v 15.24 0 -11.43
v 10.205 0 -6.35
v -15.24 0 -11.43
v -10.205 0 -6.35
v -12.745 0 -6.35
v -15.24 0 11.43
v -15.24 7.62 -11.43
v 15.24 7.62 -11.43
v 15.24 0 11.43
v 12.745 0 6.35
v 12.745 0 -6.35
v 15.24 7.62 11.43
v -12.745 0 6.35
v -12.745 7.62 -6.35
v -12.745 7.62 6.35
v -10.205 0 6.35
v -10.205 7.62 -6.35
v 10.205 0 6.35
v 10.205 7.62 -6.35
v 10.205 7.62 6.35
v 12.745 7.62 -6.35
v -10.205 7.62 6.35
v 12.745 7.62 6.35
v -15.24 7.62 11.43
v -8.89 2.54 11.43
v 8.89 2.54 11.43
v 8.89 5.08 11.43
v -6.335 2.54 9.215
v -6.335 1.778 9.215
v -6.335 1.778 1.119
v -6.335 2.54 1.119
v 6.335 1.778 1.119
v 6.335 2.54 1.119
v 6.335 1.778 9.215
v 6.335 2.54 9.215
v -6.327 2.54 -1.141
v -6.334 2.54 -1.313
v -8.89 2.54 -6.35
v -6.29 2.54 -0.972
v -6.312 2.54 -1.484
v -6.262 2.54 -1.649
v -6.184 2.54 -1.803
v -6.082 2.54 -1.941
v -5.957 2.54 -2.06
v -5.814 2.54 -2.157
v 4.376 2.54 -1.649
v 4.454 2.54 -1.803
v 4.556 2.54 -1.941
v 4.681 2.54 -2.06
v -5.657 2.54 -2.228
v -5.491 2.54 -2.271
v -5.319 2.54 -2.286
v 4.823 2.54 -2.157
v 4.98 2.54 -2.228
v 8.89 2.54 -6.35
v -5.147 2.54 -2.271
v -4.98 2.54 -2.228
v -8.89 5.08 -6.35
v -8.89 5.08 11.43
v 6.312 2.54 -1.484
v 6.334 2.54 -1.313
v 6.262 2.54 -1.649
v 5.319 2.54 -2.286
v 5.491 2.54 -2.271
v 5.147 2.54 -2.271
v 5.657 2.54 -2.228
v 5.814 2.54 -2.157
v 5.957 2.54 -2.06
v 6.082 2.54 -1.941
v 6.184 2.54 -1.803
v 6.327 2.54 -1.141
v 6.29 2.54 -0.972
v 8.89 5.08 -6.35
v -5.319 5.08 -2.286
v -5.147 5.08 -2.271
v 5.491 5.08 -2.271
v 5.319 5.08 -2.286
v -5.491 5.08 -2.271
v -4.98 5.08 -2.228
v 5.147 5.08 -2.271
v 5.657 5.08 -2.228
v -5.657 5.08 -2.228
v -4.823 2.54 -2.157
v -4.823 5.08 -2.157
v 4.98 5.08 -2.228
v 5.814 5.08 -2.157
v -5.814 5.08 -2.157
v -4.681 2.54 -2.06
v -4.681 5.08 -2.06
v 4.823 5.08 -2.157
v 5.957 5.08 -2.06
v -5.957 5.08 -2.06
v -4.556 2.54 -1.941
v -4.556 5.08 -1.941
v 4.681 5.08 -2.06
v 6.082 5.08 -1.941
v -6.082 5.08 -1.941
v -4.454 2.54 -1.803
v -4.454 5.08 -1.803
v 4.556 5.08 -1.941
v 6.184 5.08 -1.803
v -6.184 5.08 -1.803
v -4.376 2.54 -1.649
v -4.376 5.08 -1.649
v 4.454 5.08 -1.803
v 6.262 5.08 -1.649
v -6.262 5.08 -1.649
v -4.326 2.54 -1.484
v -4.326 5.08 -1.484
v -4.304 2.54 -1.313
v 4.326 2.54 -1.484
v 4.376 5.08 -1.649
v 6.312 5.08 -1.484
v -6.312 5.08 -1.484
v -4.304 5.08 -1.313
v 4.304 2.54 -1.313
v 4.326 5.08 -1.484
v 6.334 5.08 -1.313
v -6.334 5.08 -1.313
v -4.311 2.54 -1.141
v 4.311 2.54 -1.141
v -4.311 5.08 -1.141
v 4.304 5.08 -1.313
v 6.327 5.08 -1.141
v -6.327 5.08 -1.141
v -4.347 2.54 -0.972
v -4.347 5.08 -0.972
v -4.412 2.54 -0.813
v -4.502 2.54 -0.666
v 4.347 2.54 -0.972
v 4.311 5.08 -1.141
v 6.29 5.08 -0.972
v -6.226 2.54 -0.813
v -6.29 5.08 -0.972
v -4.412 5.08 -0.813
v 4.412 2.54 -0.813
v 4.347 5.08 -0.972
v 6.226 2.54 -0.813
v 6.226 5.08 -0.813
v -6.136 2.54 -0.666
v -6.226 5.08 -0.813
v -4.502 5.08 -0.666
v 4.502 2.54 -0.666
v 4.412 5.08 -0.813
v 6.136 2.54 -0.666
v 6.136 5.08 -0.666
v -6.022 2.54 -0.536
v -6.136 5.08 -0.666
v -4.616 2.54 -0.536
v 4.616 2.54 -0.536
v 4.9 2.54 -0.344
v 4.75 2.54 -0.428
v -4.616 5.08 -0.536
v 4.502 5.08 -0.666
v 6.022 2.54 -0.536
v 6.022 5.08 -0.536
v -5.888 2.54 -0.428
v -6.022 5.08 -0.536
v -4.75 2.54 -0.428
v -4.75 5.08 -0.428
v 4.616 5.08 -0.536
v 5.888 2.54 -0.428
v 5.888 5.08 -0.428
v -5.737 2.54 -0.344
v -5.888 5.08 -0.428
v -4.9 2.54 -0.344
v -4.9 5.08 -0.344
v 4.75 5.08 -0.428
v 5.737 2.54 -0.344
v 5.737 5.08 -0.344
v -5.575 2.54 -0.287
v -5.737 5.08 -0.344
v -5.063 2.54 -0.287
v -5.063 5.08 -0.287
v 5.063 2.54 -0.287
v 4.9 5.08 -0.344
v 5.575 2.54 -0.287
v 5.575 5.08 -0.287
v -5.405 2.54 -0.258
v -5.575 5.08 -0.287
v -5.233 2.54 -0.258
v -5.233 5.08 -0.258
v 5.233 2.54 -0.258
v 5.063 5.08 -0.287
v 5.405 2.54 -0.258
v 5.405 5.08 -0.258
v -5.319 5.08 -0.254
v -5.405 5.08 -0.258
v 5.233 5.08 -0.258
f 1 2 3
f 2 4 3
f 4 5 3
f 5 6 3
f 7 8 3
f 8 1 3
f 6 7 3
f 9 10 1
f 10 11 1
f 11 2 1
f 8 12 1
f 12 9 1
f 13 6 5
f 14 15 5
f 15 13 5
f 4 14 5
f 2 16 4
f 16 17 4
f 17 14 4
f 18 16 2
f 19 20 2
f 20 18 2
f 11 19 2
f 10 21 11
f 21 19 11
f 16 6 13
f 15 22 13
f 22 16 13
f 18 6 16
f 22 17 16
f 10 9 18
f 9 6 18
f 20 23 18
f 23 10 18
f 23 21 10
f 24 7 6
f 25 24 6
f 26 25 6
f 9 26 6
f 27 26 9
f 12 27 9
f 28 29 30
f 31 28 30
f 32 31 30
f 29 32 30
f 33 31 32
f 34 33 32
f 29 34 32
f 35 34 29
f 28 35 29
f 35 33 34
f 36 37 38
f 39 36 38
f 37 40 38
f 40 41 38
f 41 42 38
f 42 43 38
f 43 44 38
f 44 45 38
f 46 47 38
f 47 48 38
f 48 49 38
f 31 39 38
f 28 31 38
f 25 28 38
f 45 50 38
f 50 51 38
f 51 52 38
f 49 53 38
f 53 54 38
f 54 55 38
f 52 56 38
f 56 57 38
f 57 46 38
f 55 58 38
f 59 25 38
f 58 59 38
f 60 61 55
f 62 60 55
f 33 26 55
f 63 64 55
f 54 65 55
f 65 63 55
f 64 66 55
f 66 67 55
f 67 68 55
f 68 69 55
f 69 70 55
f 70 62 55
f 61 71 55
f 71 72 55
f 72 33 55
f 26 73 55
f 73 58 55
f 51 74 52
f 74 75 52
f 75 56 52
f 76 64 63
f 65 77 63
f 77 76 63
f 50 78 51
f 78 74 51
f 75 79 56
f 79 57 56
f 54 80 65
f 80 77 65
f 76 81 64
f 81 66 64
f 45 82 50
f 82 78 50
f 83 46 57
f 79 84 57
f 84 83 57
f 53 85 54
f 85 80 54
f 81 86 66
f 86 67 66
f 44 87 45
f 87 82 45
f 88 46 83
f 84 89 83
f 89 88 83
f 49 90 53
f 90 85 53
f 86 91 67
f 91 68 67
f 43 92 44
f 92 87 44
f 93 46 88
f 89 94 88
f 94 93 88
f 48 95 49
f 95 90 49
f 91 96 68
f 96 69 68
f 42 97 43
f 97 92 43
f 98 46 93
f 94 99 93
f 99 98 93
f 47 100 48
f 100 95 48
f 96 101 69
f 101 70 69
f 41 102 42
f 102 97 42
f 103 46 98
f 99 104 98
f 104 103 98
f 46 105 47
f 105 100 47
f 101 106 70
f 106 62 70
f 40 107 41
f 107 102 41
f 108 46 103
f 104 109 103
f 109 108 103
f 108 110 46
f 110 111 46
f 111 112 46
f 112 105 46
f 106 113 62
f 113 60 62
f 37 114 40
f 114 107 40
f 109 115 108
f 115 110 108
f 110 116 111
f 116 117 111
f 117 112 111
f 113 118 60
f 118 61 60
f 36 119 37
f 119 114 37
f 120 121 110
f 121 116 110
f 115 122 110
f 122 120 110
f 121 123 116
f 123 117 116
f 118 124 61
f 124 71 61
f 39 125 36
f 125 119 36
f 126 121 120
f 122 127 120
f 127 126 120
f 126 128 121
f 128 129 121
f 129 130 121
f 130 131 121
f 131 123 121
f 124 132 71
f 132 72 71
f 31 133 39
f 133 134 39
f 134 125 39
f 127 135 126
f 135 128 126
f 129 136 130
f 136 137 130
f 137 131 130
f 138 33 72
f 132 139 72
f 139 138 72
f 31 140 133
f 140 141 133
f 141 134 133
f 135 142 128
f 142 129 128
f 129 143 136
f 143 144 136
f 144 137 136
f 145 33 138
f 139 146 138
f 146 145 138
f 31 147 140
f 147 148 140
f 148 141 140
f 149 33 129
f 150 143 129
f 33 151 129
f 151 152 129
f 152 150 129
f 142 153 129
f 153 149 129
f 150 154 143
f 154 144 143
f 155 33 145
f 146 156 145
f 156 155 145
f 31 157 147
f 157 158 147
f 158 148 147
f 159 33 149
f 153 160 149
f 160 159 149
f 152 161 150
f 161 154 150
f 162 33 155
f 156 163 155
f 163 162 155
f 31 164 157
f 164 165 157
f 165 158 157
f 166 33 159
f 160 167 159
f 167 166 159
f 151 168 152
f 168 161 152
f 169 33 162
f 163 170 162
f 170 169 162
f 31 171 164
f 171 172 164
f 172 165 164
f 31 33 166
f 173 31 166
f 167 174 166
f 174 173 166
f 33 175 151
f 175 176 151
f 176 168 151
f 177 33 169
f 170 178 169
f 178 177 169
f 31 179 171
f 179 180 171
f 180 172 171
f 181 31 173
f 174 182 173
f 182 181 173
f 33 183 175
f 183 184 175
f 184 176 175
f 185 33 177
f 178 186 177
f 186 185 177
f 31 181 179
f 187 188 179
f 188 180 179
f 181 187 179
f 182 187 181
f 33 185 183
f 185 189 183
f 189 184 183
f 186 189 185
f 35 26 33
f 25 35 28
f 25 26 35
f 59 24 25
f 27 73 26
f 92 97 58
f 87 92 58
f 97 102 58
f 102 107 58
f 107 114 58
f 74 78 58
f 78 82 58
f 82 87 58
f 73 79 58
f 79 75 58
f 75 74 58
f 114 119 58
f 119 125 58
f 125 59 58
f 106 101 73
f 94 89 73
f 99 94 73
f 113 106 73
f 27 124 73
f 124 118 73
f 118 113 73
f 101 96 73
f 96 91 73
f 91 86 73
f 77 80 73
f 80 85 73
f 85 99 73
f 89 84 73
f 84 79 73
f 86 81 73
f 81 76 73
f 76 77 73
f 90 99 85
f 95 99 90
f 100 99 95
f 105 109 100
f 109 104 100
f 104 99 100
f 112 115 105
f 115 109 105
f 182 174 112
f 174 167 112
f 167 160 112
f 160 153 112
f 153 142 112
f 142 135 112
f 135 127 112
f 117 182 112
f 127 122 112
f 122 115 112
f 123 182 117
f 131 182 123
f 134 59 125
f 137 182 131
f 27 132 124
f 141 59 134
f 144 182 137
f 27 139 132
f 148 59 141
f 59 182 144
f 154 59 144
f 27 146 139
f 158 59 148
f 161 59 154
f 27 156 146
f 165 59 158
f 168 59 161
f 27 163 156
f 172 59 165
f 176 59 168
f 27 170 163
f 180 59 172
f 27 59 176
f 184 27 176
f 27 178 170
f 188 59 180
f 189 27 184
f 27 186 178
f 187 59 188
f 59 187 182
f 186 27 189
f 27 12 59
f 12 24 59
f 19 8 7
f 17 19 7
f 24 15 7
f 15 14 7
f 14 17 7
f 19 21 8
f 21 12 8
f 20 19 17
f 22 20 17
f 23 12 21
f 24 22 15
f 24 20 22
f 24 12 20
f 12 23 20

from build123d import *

# Parameters (mm, degrees)
SKETCH1_W           = 30.48
SKETCH1_H           = 22.86
SKETCH1_W_2         = 2.54
SKETCH1_H_2         = 12.7
BOSS_EXTRUDE2_DEPTH = 2.54
SKETCH3_R           = 1.016
BOSS_EXTRUDE3_DEPTH = 2.54
SKETCH4_W           = 30.48
SKETCH4_H           = 22.86
SKETCH4_W_2         = 2.54
SKETCH4_H_2         = 12.7
BOSS_EXTRUDE6_DEPTH = 2.54
SKETCH5_W           = 2.54
SKETCH5_H           = 12.7
BOSS_EXTRUDE7_DEPTH = 2.54
SKETCH6_W           = 12.669882096
SKETCH6_H           = 8.096264029
CUT_EXTRUDE1_DEPTH  = 0.762


with BuildPart() as part:
    # Sketch1 → Boss-Extrude2 (new body)
    with BuildSketch(Plane(origin=(0, 0, 0), x_dir=(1, 0, 0), z_dir=(0, 1, 0))):
        Rectangle(SKETCH1_W, SKETCH1_H)
        with Locations((-11.47489899, 0)):
            Rectangle(SKETCH1_W_2, SKETCH1_H_2, mode=Mode.SUBTRACT)
        with Locations((11.47489899, 0)):
            Rectangle(SKETCH1_W_2, SKETCH1_H_2, mode=Mode.SUBTRACT)
    extrude(amount=BOSS_EXTRUDE2_DEPTH)

    # Sketch3 → Boss-Extrude3 (add)
    with BuildSketch(Plane(origin=(0, 2.54, 0), x_dir=(1, 0, 0), z_dir=(0, 1, 0))):
        with Locations(Location((-5.318941048, 1.27, 0), (0, 0, 90))):
            Circle(SKETCH3_R)
        with Locations(Location((5.318941048, 1.27, 0), (0, 0, 90))):
            Circle(SKETCH3_R)
    extrude(amount=BOSS_EXTRUDE3_DEPTH)

    # Sketch4 → Boss-Extrude6 (add)
    with BuildSketch(Plane(origin=(0, 5.08, 0), x_dir=(1, 0, 0), z_dir=(0, 1, 0))):
        Rectangle(SKETCH4_W, SKETCH4_H)
        with Locations((-11.47489899, 0)):
            Rectangle(SKETCH4_W_2, SKETCH4_H_2, mode=Mode.SUBTRACT)
        with Locations((11.47489899, 0)):
            Rectangle(SKETCH4_W_2, SKETCH4_H_2, mode=Mode.SUBTRACT)
    extrude(amount=BOSS_EXTRUDE6_DEPTH)

    # Sketch5 → Boss-Extrude7 (add)
    with BuildSketch(Plane(origin=(0, 2.54, 0), x_dir=(1, 0, 0), z_dir=(0, 1, 0))):
        Polygon((-15.24, -11.43), (-15.24, 11.43), (15.24, 11.43), (15.24, -11.43), (8.89, -11.43), (8.89, 6.35), (-8.89, 6.35), (-8.89, -11.43), align=None)
        with Locations((-11.47489899, 0)):
            Rectangle(SKETCH5_W, SKETCH5_H, mode=Mode.SUBTRACT)
        with Locations((11.47489899, 0)):
            Rectangle(SKETCH5_W, SKETCH5_H, mode=Mode.SUBTRACT)
    extrude(amount=BOSS_EXTRUDE7_DEPTH)

    # Sketch6 → Cut-Extrude1 (cut)
    with BuildSketch(Plane(origin=(0, 2.54, 0), x_dir=(1, 0, 0), z_dir=(0, 1, 0))):
        with Locations((0, -5.167320683)):
            Rectangle(SKETCH6_W, SKETCH6_H)
    extrude(amount=-CUT_EXTRUDE1_DEPTH, mode=Mode.SUBTRACT)


solid = part.part
